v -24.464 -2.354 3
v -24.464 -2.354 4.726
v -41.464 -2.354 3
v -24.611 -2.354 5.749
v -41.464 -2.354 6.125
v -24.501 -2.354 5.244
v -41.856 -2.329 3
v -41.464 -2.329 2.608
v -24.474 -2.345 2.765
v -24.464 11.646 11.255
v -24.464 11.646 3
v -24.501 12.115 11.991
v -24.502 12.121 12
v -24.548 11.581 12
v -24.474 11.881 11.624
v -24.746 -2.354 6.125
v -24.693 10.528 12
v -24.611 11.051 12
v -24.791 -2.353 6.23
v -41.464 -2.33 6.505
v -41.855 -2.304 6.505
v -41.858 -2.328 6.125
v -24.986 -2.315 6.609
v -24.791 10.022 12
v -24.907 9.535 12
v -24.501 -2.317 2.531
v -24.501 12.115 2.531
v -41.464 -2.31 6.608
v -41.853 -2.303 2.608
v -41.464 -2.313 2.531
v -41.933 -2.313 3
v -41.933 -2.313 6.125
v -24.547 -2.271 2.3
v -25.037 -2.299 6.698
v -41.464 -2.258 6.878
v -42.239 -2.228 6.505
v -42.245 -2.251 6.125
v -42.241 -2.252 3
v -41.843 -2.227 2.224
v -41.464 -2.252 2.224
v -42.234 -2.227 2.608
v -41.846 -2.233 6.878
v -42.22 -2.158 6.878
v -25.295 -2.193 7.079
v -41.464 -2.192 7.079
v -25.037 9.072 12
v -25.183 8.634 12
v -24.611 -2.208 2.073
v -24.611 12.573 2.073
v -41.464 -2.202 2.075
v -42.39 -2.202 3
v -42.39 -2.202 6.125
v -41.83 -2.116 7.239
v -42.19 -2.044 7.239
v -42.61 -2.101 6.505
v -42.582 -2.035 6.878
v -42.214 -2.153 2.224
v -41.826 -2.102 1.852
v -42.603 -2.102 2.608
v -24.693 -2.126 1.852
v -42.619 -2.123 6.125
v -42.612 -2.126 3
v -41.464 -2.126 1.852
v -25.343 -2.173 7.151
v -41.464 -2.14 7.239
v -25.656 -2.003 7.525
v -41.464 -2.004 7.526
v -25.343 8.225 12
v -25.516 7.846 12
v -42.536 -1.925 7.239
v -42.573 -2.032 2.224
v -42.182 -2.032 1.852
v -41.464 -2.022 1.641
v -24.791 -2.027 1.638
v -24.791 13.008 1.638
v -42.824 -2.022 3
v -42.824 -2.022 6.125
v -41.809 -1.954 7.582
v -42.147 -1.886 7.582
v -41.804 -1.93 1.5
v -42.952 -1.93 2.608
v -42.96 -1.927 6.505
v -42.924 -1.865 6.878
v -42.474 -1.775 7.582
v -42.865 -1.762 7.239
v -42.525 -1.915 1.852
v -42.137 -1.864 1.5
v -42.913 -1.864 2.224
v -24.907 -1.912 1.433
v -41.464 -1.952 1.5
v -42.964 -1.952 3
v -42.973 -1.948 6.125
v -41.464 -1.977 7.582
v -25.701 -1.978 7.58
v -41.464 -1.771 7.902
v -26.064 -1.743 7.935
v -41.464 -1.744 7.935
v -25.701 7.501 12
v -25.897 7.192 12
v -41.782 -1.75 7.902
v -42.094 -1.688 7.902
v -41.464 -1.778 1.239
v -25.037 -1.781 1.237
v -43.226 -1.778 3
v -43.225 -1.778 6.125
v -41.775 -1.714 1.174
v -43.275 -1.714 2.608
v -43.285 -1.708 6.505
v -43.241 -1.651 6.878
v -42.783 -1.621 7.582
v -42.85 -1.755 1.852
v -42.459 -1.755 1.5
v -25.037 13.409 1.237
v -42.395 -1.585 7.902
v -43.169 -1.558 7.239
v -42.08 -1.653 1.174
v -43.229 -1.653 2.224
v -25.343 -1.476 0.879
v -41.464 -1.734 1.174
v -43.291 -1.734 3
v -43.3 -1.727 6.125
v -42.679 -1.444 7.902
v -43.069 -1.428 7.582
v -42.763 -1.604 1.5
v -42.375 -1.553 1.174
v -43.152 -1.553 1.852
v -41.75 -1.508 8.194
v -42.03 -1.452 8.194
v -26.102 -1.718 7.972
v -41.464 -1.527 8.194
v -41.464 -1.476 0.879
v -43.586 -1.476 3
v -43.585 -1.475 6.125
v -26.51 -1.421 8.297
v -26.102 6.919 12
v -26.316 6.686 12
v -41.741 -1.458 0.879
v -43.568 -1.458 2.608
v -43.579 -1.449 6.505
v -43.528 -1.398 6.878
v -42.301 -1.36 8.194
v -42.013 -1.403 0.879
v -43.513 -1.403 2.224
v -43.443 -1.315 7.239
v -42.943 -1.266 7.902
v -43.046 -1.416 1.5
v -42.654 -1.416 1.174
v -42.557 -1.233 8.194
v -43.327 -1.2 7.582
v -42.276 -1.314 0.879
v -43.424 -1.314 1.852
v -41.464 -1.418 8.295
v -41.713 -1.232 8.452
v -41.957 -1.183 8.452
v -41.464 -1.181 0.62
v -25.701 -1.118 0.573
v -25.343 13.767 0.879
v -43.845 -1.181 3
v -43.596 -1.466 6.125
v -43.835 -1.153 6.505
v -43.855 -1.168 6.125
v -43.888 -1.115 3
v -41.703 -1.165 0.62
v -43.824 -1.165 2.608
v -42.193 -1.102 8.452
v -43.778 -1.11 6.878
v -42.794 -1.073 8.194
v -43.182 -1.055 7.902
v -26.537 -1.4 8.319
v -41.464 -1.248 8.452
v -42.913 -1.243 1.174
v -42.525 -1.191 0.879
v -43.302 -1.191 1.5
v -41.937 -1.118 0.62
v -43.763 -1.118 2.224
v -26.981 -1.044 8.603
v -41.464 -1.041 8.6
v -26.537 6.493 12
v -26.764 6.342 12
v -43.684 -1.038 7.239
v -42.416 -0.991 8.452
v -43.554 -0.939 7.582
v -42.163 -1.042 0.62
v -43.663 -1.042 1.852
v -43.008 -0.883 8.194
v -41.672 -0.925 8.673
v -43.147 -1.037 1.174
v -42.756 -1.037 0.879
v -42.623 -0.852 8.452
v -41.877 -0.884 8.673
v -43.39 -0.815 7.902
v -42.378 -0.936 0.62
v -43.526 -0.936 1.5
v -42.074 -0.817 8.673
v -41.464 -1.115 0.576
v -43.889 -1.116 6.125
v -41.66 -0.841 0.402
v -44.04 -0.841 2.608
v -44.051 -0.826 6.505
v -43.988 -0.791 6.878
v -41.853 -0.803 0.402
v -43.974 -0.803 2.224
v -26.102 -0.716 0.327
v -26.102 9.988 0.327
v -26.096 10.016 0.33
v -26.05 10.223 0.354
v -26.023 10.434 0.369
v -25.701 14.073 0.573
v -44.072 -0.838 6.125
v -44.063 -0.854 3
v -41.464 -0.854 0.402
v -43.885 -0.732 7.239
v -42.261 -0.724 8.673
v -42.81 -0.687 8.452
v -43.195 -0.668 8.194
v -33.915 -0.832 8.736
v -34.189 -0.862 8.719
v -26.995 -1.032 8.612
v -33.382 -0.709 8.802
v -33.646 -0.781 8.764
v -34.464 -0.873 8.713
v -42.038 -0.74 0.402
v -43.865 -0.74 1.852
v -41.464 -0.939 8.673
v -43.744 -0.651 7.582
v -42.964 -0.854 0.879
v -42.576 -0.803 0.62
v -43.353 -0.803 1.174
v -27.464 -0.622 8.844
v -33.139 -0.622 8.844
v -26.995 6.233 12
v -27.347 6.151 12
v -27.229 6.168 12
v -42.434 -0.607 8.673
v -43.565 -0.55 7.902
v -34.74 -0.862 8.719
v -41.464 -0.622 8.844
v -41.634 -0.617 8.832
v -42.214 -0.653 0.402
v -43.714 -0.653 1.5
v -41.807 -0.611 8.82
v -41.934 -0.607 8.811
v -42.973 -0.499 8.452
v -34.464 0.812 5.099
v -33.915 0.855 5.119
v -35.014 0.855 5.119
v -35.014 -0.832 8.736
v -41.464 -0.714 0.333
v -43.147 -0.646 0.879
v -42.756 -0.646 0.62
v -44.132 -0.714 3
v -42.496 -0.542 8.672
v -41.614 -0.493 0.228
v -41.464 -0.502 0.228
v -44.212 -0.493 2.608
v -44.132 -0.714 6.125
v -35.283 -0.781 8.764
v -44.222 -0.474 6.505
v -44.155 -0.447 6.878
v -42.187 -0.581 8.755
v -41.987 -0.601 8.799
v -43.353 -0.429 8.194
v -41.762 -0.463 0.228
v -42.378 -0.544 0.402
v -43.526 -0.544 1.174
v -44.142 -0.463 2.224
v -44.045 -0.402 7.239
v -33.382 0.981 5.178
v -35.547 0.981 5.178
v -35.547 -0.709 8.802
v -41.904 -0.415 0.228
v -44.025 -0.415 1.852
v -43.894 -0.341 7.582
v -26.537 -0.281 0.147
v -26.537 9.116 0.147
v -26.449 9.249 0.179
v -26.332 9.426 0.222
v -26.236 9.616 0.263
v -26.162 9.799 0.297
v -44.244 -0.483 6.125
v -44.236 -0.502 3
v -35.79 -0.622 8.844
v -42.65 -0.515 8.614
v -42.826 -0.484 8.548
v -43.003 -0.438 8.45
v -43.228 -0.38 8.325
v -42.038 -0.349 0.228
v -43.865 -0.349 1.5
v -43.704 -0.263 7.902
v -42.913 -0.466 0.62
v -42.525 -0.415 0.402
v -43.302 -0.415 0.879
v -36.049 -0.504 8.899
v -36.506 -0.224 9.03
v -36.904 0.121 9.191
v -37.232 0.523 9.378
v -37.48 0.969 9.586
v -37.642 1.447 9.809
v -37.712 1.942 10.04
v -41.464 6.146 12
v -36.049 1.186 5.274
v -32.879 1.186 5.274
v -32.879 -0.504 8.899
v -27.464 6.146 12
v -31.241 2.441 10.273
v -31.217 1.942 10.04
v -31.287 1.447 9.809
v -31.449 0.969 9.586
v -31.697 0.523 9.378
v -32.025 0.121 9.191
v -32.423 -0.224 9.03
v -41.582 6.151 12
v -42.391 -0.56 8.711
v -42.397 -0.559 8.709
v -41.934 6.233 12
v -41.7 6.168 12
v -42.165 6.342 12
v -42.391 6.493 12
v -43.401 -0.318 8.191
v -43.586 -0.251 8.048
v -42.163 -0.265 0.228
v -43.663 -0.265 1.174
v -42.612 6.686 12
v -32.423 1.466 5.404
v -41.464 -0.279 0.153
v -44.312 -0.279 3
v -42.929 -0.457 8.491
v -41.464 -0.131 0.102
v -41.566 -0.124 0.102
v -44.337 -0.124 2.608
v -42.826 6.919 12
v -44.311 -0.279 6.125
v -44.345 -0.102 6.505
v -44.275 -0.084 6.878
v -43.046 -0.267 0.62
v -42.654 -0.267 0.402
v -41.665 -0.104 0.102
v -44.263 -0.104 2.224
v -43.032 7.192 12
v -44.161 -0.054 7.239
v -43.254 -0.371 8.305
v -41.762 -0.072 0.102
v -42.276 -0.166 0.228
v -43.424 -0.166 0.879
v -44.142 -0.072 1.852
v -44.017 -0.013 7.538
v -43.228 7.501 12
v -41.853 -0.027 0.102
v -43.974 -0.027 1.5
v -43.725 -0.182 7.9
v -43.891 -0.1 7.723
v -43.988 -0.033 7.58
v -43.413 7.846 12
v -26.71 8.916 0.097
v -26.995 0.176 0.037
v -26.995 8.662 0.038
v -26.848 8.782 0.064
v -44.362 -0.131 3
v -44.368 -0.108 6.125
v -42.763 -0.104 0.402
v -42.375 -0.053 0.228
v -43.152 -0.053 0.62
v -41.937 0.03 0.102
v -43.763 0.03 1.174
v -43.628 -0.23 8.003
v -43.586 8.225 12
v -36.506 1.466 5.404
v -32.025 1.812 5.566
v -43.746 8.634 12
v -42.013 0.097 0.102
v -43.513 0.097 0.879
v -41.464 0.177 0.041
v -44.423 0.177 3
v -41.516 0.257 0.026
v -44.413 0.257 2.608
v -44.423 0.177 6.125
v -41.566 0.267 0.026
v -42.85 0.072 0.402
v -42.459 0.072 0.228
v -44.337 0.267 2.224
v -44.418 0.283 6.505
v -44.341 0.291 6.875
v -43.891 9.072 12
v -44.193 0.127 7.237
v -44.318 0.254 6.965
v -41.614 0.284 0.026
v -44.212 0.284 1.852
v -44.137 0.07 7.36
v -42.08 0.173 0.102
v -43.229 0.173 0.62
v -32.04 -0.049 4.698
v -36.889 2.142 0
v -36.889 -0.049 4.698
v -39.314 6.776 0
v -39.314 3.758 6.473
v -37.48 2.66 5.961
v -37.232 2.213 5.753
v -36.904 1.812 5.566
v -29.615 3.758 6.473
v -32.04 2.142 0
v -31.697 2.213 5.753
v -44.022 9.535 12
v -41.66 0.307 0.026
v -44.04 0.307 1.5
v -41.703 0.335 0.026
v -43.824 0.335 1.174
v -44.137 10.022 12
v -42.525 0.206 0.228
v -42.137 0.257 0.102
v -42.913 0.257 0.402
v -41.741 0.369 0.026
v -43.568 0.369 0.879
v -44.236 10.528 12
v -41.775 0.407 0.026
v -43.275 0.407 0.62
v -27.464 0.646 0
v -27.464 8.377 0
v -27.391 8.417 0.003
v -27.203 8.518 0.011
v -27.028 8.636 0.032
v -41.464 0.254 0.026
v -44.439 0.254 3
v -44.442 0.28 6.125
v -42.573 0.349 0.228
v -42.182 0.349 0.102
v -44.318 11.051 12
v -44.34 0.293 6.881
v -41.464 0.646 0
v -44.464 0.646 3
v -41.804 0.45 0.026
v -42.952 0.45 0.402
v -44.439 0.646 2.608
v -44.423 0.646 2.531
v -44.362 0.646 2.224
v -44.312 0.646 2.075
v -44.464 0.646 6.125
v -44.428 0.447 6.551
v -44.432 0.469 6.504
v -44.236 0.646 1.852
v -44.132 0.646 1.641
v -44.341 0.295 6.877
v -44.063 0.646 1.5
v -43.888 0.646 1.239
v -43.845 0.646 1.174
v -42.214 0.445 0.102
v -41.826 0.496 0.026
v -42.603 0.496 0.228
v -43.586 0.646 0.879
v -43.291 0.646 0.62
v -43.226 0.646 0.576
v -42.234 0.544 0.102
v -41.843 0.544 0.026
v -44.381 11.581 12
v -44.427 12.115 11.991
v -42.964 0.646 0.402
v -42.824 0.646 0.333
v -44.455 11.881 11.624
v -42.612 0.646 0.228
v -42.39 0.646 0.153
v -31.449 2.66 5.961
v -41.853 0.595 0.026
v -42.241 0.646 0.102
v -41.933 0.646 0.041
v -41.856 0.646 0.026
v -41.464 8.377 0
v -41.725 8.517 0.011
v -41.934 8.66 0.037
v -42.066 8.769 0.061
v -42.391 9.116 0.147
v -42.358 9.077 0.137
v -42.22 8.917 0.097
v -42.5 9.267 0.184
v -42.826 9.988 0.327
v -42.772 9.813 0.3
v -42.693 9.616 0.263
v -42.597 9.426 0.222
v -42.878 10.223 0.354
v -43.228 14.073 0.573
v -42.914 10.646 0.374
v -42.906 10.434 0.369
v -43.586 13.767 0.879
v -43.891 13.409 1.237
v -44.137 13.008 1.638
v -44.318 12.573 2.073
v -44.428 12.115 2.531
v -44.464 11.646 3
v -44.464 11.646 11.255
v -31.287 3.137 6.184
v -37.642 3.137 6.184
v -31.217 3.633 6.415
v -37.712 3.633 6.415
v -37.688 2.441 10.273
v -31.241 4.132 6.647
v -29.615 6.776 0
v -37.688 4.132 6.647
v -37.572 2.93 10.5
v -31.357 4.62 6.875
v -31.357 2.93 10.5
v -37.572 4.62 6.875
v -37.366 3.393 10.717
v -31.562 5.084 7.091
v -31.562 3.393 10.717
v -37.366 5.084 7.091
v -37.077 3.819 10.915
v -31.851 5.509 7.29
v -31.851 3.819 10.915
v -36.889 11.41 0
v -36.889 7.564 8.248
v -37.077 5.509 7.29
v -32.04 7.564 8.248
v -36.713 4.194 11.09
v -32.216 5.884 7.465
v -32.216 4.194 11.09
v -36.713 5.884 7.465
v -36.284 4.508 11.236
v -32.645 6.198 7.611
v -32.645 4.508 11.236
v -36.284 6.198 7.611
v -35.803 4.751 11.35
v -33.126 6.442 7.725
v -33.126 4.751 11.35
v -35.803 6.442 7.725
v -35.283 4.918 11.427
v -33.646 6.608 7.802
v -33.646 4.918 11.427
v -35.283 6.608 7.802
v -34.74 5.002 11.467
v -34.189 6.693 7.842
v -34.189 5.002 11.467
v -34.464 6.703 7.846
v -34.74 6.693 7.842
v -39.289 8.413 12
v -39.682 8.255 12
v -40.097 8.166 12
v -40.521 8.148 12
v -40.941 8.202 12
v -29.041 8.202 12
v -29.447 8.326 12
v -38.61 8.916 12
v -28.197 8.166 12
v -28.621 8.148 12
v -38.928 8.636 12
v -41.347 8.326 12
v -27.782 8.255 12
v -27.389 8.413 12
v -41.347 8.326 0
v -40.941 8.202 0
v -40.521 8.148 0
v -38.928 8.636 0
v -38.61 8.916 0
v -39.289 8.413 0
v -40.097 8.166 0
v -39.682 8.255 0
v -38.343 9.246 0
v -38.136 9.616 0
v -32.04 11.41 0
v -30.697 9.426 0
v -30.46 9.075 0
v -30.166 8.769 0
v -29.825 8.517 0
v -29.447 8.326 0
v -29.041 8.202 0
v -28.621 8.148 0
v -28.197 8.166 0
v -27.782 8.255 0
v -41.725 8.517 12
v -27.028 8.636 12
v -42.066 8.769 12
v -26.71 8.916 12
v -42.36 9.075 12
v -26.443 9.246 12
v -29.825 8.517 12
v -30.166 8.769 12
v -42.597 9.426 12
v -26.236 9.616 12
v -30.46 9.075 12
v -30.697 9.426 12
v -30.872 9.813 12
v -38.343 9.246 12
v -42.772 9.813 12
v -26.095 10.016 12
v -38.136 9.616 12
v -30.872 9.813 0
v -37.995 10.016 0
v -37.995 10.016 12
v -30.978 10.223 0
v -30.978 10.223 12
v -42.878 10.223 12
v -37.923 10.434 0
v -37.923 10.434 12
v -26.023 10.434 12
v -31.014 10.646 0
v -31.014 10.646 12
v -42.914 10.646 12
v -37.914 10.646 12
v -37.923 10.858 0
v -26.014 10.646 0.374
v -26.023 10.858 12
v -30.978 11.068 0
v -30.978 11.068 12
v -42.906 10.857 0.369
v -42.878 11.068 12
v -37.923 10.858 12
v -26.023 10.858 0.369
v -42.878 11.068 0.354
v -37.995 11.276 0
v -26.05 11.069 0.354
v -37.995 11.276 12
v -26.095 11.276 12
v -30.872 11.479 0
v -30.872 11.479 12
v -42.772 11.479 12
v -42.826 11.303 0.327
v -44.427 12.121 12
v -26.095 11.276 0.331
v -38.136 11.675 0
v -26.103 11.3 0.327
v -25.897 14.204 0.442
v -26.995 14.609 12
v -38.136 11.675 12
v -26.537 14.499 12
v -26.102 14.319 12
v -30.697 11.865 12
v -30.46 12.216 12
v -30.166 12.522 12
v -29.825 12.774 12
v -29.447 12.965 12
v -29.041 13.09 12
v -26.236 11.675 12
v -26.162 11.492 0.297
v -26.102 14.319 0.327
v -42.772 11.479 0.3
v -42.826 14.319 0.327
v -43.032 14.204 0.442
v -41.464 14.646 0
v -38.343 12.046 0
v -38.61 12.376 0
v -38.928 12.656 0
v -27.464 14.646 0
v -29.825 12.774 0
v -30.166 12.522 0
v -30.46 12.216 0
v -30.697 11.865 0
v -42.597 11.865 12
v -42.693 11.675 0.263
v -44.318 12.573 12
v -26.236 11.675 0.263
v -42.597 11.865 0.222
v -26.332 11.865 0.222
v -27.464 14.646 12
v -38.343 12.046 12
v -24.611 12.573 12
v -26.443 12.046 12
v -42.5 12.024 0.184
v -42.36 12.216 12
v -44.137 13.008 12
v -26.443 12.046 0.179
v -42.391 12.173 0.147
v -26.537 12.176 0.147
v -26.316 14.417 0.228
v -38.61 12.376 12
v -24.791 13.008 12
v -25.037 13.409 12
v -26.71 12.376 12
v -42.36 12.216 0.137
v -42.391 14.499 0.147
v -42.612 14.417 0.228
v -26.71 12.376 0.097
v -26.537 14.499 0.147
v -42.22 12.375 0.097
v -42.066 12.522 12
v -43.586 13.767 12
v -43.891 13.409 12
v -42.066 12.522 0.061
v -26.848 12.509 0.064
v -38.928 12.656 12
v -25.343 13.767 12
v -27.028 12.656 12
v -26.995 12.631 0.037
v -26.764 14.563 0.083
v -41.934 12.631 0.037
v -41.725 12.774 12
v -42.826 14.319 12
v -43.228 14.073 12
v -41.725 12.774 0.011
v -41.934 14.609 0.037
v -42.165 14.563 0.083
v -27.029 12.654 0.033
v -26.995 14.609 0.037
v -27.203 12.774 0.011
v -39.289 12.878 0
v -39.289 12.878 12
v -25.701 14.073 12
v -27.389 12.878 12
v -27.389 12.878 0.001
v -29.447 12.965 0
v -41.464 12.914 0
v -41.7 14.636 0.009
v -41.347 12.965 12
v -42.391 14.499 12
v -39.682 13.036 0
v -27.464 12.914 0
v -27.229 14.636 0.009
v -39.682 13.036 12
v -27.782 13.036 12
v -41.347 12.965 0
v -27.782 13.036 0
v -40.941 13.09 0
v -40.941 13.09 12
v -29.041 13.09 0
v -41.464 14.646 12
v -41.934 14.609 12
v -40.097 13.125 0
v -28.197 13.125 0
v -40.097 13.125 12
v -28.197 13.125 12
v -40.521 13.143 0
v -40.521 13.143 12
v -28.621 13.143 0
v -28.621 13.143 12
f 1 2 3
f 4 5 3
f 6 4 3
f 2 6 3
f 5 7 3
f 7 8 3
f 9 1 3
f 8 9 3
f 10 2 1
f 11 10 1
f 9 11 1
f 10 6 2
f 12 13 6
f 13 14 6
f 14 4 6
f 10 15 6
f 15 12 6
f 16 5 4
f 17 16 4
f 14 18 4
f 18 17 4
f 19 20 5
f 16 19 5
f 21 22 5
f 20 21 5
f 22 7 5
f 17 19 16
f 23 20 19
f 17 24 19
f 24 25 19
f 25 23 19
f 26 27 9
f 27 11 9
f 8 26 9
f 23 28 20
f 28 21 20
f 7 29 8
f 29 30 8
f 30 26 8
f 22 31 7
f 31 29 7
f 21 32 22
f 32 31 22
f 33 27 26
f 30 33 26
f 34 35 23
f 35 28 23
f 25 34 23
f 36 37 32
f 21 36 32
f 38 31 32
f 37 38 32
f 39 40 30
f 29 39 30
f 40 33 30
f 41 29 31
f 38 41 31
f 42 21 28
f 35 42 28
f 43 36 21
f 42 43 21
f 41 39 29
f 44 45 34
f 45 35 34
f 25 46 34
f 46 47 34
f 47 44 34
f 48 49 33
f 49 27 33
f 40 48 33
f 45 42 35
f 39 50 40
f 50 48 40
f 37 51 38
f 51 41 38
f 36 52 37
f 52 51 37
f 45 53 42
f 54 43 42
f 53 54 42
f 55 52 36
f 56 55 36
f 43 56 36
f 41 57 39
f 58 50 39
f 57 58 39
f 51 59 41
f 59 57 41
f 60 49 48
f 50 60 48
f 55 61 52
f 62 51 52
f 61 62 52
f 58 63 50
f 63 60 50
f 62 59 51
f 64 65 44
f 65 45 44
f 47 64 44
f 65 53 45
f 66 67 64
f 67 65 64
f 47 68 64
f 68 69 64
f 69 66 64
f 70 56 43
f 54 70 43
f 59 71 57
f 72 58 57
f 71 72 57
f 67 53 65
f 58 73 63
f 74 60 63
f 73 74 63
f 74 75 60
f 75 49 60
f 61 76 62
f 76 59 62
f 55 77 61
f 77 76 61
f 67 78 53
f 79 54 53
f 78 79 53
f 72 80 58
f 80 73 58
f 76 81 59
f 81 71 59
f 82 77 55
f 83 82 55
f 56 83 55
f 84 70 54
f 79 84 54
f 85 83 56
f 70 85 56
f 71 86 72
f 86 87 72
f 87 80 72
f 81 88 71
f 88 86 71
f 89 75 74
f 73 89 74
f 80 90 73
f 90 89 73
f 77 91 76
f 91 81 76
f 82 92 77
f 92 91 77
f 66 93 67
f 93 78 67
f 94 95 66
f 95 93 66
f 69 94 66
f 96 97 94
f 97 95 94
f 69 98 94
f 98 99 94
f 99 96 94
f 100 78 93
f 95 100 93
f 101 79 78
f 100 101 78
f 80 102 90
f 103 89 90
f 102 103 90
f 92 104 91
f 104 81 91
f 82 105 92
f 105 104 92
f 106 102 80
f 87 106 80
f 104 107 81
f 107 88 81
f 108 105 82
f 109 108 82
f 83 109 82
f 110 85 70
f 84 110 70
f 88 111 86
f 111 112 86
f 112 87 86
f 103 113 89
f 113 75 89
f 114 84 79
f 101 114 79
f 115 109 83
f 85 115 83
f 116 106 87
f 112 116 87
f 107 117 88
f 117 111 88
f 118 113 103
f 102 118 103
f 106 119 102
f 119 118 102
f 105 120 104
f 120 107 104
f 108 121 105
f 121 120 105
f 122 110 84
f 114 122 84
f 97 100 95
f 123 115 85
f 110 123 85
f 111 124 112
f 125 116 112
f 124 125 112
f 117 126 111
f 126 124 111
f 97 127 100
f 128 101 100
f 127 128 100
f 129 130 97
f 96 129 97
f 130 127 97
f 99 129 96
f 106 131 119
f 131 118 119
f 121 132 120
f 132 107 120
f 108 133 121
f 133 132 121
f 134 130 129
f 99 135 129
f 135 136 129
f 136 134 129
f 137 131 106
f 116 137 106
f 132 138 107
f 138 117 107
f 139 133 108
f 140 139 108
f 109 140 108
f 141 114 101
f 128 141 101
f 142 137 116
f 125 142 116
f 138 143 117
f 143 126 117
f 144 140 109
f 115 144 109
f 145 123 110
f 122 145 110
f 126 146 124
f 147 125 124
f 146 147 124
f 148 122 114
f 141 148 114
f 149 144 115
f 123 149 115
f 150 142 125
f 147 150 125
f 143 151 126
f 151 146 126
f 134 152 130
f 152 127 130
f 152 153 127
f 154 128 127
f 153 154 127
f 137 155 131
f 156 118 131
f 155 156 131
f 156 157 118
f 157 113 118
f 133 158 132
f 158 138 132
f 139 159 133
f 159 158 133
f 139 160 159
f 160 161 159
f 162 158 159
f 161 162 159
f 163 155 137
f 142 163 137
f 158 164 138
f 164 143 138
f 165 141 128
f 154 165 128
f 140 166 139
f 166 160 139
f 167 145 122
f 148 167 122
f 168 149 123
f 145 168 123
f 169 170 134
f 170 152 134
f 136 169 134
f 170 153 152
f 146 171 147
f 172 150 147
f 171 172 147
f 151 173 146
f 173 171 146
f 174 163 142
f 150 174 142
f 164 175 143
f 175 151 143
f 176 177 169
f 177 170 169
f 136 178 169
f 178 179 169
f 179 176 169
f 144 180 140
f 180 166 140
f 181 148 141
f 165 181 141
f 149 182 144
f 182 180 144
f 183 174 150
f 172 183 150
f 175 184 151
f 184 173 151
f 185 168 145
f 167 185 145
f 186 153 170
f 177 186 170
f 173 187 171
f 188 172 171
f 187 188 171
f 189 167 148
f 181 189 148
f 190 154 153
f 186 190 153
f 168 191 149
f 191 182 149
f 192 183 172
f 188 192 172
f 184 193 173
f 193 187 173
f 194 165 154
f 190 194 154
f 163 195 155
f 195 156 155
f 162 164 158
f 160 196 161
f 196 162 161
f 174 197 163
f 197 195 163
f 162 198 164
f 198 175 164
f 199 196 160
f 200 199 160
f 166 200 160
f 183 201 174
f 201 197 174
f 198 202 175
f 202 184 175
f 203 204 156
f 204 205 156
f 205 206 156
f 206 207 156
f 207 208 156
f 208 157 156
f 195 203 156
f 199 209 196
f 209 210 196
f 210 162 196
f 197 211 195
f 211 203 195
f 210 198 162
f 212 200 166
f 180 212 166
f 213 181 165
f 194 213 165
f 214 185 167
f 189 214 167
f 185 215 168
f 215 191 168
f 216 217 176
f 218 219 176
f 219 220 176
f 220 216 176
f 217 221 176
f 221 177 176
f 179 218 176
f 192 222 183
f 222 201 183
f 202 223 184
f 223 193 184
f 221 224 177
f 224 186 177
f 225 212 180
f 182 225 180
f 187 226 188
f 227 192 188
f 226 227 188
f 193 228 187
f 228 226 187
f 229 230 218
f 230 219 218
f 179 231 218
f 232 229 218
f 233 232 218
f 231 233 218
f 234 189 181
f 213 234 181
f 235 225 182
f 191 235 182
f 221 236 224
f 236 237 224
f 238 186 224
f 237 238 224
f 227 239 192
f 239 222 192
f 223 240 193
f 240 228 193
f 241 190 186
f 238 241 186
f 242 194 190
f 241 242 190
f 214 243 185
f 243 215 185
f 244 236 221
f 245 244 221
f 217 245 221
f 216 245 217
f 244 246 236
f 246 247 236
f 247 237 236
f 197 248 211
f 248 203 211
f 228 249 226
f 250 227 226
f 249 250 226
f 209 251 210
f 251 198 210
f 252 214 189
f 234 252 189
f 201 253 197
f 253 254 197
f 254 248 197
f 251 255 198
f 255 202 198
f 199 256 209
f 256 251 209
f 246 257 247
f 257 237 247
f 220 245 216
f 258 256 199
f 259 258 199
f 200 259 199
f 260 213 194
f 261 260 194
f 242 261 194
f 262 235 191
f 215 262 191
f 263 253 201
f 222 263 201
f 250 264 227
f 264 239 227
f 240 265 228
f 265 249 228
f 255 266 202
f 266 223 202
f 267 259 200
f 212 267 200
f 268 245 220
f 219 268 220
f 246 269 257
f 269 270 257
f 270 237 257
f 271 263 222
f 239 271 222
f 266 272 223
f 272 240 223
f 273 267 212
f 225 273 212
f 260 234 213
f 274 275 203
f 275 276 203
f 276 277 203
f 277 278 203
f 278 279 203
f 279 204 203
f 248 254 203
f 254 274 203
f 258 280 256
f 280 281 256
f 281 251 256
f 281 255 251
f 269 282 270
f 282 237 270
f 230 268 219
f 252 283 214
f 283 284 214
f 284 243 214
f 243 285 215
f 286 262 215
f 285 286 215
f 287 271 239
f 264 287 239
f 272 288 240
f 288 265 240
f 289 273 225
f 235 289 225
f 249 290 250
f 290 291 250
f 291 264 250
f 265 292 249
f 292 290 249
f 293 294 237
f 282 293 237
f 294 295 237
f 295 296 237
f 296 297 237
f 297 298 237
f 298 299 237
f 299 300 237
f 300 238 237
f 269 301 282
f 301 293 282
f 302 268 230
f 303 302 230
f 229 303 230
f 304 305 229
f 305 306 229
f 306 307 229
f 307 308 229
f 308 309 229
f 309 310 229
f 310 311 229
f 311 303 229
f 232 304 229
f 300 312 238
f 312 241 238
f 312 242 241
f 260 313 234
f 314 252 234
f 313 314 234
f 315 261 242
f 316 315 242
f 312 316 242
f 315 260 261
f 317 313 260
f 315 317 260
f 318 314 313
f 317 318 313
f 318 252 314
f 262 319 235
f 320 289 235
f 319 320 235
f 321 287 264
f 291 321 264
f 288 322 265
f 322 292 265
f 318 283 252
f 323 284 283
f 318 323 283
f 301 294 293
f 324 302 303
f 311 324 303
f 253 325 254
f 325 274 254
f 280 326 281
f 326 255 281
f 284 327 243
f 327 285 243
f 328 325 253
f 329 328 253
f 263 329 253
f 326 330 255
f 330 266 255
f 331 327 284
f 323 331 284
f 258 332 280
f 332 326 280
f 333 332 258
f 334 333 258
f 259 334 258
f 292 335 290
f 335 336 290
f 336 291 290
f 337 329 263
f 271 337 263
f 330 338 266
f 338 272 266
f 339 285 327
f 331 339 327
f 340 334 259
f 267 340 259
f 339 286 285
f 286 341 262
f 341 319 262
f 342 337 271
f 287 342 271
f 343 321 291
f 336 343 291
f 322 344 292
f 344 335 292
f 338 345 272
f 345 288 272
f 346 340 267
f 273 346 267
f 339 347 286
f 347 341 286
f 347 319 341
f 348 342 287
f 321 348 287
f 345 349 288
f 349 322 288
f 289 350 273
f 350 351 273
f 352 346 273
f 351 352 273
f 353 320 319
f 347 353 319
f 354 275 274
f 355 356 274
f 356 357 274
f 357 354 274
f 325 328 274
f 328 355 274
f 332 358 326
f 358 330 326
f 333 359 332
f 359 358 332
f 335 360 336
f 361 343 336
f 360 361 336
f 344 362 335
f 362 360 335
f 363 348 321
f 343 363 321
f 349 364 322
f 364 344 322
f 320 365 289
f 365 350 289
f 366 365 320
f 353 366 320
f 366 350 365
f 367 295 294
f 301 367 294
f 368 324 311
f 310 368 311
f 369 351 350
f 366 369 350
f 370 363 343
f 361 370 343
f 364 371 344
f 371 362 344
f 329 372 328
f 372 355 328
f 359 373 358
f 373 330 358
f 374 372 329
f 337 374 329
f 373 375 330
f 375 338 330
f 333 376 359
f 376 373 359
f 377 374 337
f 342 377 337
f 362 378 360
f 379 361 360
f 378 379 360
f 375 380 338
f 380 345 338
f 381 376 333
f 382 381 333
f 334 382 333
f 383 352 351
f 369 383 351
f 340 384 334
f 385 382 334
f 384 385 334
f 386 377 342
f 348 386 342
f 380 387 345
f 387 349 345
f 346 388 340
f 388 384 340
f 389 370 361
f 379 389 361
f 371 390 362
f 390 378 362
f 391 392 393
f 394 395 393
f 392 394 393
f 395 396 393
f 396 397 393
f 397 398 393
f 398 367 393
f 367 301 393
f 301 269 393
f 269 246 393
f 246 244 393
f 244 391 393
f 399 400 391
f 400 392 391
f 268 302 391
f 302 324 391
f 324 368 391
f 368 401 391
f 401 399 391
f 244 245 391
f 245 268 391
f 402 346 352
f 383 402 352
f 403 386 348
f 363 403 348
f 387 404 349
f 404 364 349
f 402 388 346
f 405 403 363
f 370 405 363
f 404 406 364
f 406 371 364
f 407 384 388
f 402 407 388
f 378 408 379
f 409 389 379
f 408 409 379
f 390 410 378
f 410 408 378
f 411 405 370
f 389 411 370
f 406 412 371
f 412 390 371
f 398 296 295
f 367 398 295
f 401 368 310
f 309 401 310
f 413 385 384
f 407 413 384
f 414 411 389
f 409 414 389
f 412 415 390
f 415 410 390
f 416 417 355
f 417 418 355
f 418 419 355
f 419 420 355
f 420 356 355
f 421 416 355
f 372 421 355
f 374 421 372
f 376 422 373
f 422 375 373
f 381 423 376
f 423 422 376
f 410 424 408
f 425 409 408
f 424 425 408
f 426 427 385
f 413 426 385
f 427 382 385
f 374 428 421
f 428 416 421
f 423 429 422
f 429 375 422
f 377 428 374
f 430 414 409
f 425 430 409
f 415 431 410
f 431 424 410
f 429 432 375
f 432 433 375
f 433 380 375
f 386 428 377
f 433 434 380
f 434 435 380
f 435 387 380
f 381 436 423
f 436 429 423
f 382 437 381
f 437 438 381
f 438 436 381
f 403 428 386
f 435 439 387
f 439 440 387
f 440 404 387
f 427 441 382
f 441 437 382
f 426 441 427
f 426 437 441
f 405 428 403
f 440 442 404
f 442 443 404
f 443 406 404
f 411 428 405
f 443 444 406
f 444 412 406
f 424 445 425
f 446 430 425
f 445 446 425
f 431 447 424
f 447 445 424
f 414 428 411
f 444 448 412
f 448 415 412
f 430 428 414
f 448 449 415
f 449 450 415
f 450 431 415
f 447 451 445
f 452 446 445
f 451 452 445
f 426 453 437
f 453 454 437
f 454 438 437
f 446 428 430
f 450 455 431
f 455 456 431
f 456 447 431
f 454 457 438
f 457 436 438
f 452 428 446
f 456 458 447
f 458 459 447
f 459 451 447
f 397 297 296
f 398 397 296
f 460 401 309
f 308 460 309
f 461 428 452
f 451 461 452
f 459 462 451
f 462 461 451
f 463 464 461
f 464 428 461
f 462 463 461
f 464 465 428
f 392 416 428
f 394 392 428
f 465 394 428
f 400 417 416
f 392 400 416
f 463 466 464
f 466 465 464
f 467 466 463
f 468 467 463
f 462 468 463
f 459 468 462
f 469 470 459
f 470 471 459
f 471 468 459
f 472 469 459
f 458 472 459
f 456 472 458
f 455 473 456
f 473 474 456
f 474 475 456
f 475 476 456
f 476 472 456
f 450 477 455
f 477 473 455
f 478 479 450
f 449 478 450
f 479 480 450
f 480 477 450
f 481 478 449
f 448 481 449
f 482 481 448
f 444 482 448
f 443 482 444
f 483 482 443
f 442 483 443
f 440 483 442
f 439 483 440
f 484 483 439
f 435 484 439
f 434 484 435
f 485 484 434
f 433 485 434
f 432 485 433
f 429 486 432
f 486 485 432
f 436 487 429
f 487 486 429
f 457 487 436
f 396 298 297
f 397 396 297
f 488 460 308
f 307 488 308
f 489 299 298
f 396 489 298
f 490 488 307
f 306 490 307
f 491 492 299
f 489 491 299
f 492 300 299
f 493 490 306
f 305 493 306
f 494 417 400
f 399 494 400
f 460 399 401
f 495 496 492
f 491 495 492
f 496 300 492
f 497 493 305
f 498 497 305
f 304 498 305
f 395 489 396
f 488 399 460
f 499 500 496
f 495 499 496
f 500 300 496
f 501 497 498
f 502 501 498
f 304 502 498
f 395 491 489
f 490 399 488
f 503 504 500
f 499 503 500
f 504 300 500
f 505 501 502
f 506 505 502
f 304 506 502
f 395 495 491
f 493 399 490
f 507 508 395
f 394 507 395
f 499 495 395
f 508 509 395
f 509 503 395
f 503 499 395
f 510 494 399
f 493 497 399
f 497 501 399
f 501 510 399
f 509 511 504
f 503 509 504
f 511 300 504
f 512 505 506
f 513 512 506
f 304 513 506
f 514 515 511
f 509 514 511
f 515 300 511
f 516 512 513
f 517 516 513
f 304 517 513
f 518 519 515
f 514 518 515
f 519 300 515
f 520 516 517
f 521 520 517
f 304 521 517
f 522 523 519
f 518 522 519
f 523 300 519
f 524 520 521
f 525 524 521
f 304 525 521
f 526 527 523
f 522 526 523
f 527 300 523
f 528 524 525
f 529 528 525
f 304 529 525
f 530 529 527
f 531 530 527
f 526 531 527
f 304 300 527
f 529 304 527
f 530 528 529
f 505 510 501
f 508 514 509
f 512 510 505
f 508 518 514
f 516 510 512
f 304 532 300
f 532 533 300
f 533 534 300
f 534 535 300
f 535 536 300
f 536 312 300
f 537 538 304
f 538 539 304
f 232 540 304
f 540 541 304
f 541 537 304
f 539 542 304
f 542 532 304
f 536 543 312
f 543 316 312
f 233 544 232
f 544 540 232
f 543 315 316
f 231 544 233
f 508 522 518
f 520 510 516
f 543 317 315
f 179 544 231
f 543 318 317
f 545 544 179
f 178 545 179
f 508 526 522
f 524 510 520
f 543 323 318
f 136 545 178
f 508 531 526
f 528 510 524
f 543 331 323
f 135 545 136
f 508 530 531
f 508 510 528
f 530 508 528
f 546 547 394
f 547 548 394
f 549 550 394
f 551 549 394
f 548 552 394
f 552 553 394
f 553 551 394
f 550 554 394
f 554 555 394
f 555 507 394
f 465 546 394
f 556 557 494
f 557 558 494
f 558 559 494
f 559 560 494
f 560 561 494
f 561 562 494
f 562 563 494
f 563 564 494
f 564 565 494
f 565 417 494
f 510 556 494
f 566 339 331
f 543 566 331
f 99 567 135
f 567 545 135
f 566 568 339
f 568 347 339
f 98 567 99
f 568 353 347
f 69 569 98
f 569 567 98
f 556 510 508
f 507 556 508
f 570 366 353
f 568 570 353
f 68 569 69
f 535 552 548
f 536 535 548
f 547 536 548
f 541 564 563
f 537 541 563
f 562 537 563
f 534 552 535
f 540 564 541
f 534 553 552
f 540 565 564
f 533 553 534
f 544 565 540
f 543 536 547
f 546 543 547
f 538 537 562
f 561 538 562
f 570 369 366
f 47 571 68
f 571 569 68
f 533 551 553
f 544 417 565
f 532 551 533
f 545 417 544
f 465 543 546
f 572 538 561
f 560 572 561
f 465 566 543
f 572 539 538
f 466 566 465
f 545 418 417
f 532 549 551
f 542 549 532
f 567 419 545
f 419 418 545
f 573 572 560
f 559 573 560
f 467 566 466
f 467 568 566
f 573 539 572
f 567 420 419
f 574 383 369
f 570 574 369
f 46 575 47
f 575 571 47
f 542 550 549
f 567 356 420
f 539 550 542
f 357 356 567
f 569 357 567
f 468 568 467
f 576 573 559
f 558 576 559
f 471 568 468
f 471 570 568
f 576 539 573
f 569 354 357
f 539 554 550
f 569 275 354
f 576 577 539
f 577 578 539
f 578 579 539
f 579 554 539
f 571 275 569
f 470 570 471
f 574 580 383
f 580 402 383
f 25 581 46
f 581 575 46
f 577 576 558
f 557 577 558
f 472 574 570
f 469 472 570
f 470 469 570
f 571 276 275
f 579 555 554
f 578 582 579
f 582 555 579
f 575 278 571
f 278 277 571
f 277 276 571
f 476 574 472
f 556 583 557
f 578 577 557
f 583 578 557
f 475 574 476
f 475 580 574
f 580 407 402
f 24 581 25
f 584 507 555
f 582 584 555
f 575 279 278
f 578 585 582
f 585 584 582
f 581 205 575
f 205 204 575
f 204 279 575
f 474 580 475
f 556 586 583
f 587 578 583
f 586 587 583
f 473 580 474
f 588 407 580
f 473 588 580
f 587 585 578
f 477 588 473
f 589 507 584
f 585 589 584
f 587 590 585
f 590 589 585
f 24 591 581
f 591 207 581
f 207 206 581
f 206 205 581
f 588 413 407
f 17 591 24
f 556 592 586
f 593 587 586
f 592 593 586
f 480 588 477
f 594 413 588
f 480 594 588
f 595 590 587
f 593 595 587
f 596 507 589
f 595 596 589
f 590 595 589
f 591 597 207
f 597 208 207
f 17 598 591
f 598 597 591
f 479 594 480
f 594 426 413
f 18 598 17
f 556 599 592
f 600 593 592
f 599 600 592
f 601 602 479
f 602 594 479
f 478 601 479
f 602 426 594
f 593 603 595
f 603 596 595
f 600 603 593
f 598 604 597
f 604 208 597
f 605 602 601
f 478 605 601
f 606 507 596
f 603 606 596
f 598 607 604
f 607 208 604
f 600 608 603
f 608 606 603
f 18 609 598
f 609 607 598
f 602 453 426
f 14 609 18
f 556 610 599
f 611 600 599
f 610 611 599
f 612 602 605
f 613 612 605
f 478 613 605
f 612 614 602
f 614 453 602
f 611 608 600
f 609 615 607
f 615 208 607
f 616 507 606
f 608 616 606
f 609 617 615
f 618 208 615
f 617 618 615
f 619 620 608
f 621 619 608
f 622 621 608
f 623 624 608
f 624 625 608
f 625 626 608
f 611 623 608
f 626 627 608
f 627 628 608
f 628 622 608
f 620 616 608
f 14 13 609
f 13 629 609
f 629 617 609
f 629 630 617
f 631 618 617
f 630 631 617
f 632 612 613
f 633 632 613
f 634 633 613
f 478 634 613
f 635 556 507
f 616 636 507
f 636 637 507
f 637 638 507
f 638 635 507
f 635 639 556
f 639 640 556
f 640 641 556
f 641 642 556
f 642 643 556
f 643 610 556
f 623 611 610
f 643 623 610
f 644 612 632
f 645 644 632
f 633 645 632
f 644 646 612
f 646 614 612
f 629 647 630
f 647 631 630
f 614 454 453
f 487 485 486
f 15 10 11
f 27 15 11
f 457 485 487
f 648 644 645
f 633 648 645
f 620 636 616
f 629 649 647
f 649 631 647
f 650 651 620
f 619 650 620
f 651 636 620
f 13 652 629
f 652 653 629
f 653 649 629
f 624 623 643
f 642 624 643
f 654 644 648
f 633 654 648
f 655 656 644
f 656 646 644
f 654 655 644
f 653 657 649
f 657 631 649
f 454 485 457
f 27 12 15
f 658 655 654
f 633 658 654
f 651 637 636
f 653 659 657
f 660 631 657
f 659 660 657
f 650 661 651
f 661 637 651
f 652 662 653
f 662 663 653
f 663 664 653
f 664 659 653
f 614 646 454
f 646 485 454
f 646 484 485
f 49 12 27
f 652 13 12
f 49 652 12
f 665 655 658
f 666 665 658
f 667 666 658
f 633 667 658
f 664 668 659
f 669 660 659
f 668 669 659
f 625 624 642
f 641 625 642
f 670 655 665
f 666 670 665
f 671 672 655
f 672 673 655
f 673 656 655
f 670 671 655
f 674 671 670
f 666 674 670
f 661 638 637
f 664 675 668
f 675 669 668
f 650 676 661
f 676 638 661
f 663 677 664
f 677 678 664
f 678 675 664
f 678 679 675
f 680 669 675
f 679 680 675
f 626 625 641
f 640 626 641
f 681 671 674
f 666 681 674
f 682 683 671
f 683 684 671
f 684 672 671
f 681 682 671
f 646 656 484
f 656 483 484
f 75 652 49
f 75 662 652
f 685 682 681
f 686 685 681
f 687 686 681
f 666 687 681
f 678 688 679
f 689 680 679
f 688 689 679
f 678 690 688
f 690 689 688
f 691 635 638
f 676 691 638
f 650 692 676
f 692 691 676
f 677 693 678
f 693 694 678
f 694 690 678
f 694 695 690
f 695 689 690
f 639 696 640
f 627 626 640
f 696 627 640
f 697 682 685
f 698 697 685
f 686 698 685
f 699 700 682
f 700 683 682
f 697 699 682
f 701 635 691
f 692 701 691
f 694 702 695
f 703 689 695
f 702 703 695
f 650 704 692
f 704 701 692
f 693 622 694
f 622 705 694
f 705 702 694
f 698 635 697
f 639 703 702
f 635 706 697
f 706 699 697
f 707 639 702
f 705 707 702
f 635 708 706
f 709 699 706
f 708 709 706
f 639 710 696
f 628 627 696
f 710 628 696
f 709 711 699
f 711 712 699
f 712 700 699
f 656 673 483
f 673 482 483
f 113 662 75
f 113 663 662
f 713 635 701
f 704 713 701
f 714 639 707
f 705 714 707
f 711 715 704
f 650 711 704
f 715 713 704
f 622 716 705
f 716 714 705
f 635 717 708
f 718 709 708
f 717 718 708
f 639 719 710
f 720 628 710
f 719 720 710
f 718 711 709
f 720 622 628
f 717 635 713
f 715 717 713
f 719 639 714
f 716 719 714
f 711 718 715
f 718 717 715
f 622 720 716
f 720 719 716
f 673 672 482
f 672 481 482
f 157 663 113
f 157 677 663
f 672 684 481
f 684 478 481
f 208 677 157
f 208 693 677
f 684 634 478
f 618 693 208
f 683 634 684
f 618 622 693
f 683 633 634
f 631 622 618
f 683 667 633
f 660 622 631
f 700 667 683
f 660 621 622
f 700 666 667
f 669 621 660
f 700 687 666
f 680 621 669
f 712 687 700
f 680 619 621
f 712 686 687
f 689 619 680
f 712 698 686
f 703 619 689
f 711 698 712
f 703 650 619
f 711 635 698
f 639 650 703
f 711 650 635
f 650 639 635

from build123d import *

# Parameters (mm, degrees)
CROQUIS1_W              = 20
CROQUIS1_H              = 17
CROQUIS1_R              = 2.5
SALIENTE_EXTRUIR2_DEPTH = 12
CORTAR_EXTRUIR2_DEPTH   = 20
CROQUIS5_R              = 3.25
CORTAR_EXTRUIR3_DEPTH   = 20
CORTAR_EXTRUIR4_START   = 4
CORTAR_EXTRUIR4_DEPTH   = 20
REDONDEO1_R             = 3


with BuildPart() as part:
    # Croquis1 → Saliente-Extruir2 (new body)
    with BuildSketch(Plane.XY):
        with Locations((-34.464447367, 6.145669291)):
            Rectangle(CROQUIS1_W, CROQUIS1_H)
        with Locations((-40.414447367, 10.645669291)):
            Circle(CROQUIS1_R, mode=Mode.SUBTRACT)
        with Locations(Location((-28.514447367, 10.645669291, 0), (0, 0, 180))):
            Circle(CROQUIS1_R, mode=Mode.SUBTRACT)
    extrude(amount=SALIENTE_EXTRUIR2_DEPTH)

    # Croquis4 → Cortar-Extruir2 (cut)
    with BuildSketch(Plane(origin=(-24.464447367, 0, 0), x_dir=(0, 0, -1), z_dir=(1, 0, 0))):
        Polygon((-12, 6.145669291), (-8.036384906, -2.354330709), (-12, -2.354330709), align=None)
    extrude(amount=-CORTAR_EXTRUIR2_DEPTH, mode=Mode.SUBTRACT)

    # Croquis5 → Cortar-Extruir3 (cut)
    with BuildSketch(Plane(origin=(0, 11.801993797, 14.637587434), x_dir=(1, 0, 0), z_dir=(0, 0.42261826174069395, -0.9063077870366525))):
        with Locations(Location((-34.464447367, 10.741063562, 0), (0, 0, 90))):
            Circle(CROQUIS5_R)
    extrude(amount=CORTAR_EXTRUIR3_DEPTH, mode=Mode.SUBTRACT)

    # Croquis6 → Cortar-Extruir4 (cut)
    with BuildSketch(Plane(origin=(0, 11.801993797, 14.637587434), x_dir=(1, 0, 0), z_dir=(0, 0.42261826174069395, -0.9063077870366525)).offset(CORTAR_EXTRUIR4_START)):
        Polygon((-29.614705106, 10.741063562), (-32.039576236, 14.941063562), (-36.889318498, 14.941063562), (-39.314189628, 10.741063562), (-36.889318498, 6.541063562), (-32.039576236, 6.541063562), align=None)
    extrude(amount=CORTAR_EXTRUIR4_DEPTH, mode=Mode.SUBTRACT)

    # Redondeo1
    # the kernel refuses this fillet: 3 mm, written as the material it takes off along each edge
    with BuildSketch(Plane(origin=(-41.464447367, 0.645669291, 3), x_dir=(0, 0, -1), z_dir=(-1, 0, 0))) as redondeo1_piece_1_section:
        Polygon((0, 0), (REDONDEO1_R, 0), (REDONDEO1_R, REDONDEO1_R), (0, REDONDEO1_R), align=None)
    redondeo1_piece_1 = extrude(amount=REDONDEO1_R, mode=Mode.PRIVATE)
    redondeo1_piece_1 = redondeo1_piece_1 - Plane(origin=(-41.464447367, 0.645669291, 3), x_dir=(0, 0.7071067811865475, 0.7071067811865475), z_dir=(-1, 0, 0)) * Sphere(REDONDEO1_R, mode=Mode.PRIVATE)
    add(redondeo1_piece_1, mode=Mode.SUBTRACT)
    with BuildSketch(Plane(origin=(-41.464447367, 0.645669291, 6.125174123), x_dir=(0, -0.422618261740694, 0.9063077870366527), z_dir=(-1, 0, 0))) as redondeo1_piece_2_section:
        Polygon((0, 0), (REDONDEO1_R, 0), (REDONDEO1_R, -REDONDEO1_R * 0.637070260807), (REDONDEO1_R * 0.422618261741, -REDONDEO1_R * 0.906307787037), align=None)
    redondeo1_piece_2 = extrude(amount=REDONDEO1_R, mode=Mode.PRIVATE)
    redondeo1_piece_2 = redondeo1_piece_2 - Plane(origin=(-41.464447367, 0.645669291, 6.125174123), x_dir=(0, 0.8433914458128839, -0.5372996083468264), z_dir=(-1, 0, 0)) * Sphere(REDONDEO1_R, mode=Mode.PRIVATE)
    add(redondeo1_piece_2, mode=Mode.SUBTRACT)
    with BuildSketch(Plane(origin=(-44.464447367, 0.645669291, 0), x_dir=(0, 0, 1), z_dir=(0, 1, 0))) as redondeo1_piece_3:
        with BuildLine():
            CenterArc((REDONDEO1_R, REDONDEO1_R), REDONDEO1_R, 180, 90)
            Line((0, REDONDEO1_R), (0, 0))
            Line((0, 0), (REDONDEO1_R, 0))
        make_face()
    extrude(amount=21.5, mode=Mode.SUBTRACT)
    with BuildSketch(Plane(origin=(-44.464447367, 14.645669291, -7.5), x_dir=(1, 0, 0), z_dir=(0, 0, 1))) as redondeo1_piece_4:
        with BuildLine():
            CenterArc((REDONDEO1_R, -REDONDEO1_R), REDONDEO1_R, 90, 90)
            Line((0, -REDONDEO1_R), (0, 0))
            Line((0, 0), (REDONDEO1_R, 0))
        make_face()
    extrude(amount=27, mode=Mode.SUBTRACT)
    with BuildSketch(Plane(origin=(-24.464447367, 14.645669291, -7.5), x_dir=(-1, 0, 0), z_dir=(0, 0, 1))) as redondeo1_piece_5:
        with BuildLine():
            CenterArc((REDONDEO1_R, REDONDEO1_R), REDONDEO1_R, 180, 90)
            Line((0, REDONDEO1_R), (0, 0))
            Line((0, 0), (REDONDEO1_R, 0))
        make_face()
    extrude(amount=27, mode=Mode.SUBTRACT)
    with BuildSketch(Plane(origin=(-24.464447367, 22.145669291, 0), x_dir=(0, 0, 1), z_dir=(0, -1, 0))) as redondeo1_piece_6:
        with BuildLine():
            CenterArc((REDONDEO1_R, REDONDEO1_R), REDONDEO1_R, 180, 90)
            Line((0, REDONDEO1_R), (0, 0))
            Line((0, 0), (REDONDEO1_R, 0))
        make_face()
    extrude(amount=32, mode=Mode.SUBTRACT)
    with BuildSketch(Plane(origin=(-16.964447367, -2.354330709, 0), x_dir=(0, 1, 0), z_dir=(-1, 0, 0))) as redondeo1_piece_7:
        with BuildLine():
            CenterArc((REDONDEO1_R, -REDONDEO1_R), REDONDEO1_R, 90, 90)
            Line((0, -REDONDEO1_R), (0, 0))
            Line((0, 0), (REDONDEO1_R, 0))
        make_face()
    extrude(amount=24.5, mode=Mode.SUBTRACT)
    with BuildSketch(Plane(origin=(-44.464447367, -2.354330709, 3), x_dir=(0, 1, 0), z_dir=(0, 0, 1))) as redondeo1_piece_8:
        with BuildLine():
            CenterArc((REDONDEO1_R, -REDONDEO1_R), REDONDEO1_R, 90, 90)
            Line((0, -REDONDEO1_R), (0, 0))
            Line((0, 0), (REDONDEO1_R, 0))
        make_face()
    extrude(amount=3.125174123, mode=Mode.SUBTRACT)
    with BuildSketch(Plane(origin=(-44.464447367, 12.942977694, 15.169636963), x_dir=(0, 0.42261826174069395, -0.9063077870366526), z_dir=(0, -0.9063077870366526, -0.42261826174069395))) as redondeo1_piece_9:
        with BuildLine():
            CenterArc((REDONDEO1_R, REDONDEO1_R), REDONDEO1_R, 180, 90)
            Line((0, REDONDEO1_R), (0, 0))
            Line((0, 0), (REDONDEO1_R, 0))
        make_face()
    extrude(amount=14.967501529, mode=Mode.SUBTRACT)
    with BuildSketch(Plane(origin=(-24.464447367, 12.942977694, 15.169636963), x_dir=(0, 0.4226182617406939, -0.9063077870366525), z_dir=(0, -0.9063077870366526, -0.42261826174069395))) as redondeo1_piece_10:
        with BuildLine():
            CenterArc((REDONDEO1_R, -REDONDEO1_R), REDONDEO1_R, 90, 90)
            Line((0, -REDONDEO1_R), (0, 0))
            Line((0, 0), (REDONDEO1_R, 0))
        make_face()
    extrude(amount=24.378712311, mode=Mode.SUBTRACT)
    with BuildSketch(Plane(origin=(-19.686420411, -2.354330709, 8.036384906), x_dir=(0, 0.9063077870366527, 0.4226182617406936), z_dir=(-1, 0, 0))) as redondeo1_piece_11:
        with BuildLine():
            CenterArc((REDONDEO1_R * 0.637070260807, REDONDEO1_R), REDONDEO1_R, 205, 65)
            Line((-REDONDEO1_R * 0.269237526229, REDONDEO1_R * 0.577381738259), (0, 0))
            Line((0, 0), (REDONDEO1_R * 0.637070260807, 0))
        make_face()
    extrude(amount=21.778026956, mode=Mode.SUBTRACT)


solid = part.part
